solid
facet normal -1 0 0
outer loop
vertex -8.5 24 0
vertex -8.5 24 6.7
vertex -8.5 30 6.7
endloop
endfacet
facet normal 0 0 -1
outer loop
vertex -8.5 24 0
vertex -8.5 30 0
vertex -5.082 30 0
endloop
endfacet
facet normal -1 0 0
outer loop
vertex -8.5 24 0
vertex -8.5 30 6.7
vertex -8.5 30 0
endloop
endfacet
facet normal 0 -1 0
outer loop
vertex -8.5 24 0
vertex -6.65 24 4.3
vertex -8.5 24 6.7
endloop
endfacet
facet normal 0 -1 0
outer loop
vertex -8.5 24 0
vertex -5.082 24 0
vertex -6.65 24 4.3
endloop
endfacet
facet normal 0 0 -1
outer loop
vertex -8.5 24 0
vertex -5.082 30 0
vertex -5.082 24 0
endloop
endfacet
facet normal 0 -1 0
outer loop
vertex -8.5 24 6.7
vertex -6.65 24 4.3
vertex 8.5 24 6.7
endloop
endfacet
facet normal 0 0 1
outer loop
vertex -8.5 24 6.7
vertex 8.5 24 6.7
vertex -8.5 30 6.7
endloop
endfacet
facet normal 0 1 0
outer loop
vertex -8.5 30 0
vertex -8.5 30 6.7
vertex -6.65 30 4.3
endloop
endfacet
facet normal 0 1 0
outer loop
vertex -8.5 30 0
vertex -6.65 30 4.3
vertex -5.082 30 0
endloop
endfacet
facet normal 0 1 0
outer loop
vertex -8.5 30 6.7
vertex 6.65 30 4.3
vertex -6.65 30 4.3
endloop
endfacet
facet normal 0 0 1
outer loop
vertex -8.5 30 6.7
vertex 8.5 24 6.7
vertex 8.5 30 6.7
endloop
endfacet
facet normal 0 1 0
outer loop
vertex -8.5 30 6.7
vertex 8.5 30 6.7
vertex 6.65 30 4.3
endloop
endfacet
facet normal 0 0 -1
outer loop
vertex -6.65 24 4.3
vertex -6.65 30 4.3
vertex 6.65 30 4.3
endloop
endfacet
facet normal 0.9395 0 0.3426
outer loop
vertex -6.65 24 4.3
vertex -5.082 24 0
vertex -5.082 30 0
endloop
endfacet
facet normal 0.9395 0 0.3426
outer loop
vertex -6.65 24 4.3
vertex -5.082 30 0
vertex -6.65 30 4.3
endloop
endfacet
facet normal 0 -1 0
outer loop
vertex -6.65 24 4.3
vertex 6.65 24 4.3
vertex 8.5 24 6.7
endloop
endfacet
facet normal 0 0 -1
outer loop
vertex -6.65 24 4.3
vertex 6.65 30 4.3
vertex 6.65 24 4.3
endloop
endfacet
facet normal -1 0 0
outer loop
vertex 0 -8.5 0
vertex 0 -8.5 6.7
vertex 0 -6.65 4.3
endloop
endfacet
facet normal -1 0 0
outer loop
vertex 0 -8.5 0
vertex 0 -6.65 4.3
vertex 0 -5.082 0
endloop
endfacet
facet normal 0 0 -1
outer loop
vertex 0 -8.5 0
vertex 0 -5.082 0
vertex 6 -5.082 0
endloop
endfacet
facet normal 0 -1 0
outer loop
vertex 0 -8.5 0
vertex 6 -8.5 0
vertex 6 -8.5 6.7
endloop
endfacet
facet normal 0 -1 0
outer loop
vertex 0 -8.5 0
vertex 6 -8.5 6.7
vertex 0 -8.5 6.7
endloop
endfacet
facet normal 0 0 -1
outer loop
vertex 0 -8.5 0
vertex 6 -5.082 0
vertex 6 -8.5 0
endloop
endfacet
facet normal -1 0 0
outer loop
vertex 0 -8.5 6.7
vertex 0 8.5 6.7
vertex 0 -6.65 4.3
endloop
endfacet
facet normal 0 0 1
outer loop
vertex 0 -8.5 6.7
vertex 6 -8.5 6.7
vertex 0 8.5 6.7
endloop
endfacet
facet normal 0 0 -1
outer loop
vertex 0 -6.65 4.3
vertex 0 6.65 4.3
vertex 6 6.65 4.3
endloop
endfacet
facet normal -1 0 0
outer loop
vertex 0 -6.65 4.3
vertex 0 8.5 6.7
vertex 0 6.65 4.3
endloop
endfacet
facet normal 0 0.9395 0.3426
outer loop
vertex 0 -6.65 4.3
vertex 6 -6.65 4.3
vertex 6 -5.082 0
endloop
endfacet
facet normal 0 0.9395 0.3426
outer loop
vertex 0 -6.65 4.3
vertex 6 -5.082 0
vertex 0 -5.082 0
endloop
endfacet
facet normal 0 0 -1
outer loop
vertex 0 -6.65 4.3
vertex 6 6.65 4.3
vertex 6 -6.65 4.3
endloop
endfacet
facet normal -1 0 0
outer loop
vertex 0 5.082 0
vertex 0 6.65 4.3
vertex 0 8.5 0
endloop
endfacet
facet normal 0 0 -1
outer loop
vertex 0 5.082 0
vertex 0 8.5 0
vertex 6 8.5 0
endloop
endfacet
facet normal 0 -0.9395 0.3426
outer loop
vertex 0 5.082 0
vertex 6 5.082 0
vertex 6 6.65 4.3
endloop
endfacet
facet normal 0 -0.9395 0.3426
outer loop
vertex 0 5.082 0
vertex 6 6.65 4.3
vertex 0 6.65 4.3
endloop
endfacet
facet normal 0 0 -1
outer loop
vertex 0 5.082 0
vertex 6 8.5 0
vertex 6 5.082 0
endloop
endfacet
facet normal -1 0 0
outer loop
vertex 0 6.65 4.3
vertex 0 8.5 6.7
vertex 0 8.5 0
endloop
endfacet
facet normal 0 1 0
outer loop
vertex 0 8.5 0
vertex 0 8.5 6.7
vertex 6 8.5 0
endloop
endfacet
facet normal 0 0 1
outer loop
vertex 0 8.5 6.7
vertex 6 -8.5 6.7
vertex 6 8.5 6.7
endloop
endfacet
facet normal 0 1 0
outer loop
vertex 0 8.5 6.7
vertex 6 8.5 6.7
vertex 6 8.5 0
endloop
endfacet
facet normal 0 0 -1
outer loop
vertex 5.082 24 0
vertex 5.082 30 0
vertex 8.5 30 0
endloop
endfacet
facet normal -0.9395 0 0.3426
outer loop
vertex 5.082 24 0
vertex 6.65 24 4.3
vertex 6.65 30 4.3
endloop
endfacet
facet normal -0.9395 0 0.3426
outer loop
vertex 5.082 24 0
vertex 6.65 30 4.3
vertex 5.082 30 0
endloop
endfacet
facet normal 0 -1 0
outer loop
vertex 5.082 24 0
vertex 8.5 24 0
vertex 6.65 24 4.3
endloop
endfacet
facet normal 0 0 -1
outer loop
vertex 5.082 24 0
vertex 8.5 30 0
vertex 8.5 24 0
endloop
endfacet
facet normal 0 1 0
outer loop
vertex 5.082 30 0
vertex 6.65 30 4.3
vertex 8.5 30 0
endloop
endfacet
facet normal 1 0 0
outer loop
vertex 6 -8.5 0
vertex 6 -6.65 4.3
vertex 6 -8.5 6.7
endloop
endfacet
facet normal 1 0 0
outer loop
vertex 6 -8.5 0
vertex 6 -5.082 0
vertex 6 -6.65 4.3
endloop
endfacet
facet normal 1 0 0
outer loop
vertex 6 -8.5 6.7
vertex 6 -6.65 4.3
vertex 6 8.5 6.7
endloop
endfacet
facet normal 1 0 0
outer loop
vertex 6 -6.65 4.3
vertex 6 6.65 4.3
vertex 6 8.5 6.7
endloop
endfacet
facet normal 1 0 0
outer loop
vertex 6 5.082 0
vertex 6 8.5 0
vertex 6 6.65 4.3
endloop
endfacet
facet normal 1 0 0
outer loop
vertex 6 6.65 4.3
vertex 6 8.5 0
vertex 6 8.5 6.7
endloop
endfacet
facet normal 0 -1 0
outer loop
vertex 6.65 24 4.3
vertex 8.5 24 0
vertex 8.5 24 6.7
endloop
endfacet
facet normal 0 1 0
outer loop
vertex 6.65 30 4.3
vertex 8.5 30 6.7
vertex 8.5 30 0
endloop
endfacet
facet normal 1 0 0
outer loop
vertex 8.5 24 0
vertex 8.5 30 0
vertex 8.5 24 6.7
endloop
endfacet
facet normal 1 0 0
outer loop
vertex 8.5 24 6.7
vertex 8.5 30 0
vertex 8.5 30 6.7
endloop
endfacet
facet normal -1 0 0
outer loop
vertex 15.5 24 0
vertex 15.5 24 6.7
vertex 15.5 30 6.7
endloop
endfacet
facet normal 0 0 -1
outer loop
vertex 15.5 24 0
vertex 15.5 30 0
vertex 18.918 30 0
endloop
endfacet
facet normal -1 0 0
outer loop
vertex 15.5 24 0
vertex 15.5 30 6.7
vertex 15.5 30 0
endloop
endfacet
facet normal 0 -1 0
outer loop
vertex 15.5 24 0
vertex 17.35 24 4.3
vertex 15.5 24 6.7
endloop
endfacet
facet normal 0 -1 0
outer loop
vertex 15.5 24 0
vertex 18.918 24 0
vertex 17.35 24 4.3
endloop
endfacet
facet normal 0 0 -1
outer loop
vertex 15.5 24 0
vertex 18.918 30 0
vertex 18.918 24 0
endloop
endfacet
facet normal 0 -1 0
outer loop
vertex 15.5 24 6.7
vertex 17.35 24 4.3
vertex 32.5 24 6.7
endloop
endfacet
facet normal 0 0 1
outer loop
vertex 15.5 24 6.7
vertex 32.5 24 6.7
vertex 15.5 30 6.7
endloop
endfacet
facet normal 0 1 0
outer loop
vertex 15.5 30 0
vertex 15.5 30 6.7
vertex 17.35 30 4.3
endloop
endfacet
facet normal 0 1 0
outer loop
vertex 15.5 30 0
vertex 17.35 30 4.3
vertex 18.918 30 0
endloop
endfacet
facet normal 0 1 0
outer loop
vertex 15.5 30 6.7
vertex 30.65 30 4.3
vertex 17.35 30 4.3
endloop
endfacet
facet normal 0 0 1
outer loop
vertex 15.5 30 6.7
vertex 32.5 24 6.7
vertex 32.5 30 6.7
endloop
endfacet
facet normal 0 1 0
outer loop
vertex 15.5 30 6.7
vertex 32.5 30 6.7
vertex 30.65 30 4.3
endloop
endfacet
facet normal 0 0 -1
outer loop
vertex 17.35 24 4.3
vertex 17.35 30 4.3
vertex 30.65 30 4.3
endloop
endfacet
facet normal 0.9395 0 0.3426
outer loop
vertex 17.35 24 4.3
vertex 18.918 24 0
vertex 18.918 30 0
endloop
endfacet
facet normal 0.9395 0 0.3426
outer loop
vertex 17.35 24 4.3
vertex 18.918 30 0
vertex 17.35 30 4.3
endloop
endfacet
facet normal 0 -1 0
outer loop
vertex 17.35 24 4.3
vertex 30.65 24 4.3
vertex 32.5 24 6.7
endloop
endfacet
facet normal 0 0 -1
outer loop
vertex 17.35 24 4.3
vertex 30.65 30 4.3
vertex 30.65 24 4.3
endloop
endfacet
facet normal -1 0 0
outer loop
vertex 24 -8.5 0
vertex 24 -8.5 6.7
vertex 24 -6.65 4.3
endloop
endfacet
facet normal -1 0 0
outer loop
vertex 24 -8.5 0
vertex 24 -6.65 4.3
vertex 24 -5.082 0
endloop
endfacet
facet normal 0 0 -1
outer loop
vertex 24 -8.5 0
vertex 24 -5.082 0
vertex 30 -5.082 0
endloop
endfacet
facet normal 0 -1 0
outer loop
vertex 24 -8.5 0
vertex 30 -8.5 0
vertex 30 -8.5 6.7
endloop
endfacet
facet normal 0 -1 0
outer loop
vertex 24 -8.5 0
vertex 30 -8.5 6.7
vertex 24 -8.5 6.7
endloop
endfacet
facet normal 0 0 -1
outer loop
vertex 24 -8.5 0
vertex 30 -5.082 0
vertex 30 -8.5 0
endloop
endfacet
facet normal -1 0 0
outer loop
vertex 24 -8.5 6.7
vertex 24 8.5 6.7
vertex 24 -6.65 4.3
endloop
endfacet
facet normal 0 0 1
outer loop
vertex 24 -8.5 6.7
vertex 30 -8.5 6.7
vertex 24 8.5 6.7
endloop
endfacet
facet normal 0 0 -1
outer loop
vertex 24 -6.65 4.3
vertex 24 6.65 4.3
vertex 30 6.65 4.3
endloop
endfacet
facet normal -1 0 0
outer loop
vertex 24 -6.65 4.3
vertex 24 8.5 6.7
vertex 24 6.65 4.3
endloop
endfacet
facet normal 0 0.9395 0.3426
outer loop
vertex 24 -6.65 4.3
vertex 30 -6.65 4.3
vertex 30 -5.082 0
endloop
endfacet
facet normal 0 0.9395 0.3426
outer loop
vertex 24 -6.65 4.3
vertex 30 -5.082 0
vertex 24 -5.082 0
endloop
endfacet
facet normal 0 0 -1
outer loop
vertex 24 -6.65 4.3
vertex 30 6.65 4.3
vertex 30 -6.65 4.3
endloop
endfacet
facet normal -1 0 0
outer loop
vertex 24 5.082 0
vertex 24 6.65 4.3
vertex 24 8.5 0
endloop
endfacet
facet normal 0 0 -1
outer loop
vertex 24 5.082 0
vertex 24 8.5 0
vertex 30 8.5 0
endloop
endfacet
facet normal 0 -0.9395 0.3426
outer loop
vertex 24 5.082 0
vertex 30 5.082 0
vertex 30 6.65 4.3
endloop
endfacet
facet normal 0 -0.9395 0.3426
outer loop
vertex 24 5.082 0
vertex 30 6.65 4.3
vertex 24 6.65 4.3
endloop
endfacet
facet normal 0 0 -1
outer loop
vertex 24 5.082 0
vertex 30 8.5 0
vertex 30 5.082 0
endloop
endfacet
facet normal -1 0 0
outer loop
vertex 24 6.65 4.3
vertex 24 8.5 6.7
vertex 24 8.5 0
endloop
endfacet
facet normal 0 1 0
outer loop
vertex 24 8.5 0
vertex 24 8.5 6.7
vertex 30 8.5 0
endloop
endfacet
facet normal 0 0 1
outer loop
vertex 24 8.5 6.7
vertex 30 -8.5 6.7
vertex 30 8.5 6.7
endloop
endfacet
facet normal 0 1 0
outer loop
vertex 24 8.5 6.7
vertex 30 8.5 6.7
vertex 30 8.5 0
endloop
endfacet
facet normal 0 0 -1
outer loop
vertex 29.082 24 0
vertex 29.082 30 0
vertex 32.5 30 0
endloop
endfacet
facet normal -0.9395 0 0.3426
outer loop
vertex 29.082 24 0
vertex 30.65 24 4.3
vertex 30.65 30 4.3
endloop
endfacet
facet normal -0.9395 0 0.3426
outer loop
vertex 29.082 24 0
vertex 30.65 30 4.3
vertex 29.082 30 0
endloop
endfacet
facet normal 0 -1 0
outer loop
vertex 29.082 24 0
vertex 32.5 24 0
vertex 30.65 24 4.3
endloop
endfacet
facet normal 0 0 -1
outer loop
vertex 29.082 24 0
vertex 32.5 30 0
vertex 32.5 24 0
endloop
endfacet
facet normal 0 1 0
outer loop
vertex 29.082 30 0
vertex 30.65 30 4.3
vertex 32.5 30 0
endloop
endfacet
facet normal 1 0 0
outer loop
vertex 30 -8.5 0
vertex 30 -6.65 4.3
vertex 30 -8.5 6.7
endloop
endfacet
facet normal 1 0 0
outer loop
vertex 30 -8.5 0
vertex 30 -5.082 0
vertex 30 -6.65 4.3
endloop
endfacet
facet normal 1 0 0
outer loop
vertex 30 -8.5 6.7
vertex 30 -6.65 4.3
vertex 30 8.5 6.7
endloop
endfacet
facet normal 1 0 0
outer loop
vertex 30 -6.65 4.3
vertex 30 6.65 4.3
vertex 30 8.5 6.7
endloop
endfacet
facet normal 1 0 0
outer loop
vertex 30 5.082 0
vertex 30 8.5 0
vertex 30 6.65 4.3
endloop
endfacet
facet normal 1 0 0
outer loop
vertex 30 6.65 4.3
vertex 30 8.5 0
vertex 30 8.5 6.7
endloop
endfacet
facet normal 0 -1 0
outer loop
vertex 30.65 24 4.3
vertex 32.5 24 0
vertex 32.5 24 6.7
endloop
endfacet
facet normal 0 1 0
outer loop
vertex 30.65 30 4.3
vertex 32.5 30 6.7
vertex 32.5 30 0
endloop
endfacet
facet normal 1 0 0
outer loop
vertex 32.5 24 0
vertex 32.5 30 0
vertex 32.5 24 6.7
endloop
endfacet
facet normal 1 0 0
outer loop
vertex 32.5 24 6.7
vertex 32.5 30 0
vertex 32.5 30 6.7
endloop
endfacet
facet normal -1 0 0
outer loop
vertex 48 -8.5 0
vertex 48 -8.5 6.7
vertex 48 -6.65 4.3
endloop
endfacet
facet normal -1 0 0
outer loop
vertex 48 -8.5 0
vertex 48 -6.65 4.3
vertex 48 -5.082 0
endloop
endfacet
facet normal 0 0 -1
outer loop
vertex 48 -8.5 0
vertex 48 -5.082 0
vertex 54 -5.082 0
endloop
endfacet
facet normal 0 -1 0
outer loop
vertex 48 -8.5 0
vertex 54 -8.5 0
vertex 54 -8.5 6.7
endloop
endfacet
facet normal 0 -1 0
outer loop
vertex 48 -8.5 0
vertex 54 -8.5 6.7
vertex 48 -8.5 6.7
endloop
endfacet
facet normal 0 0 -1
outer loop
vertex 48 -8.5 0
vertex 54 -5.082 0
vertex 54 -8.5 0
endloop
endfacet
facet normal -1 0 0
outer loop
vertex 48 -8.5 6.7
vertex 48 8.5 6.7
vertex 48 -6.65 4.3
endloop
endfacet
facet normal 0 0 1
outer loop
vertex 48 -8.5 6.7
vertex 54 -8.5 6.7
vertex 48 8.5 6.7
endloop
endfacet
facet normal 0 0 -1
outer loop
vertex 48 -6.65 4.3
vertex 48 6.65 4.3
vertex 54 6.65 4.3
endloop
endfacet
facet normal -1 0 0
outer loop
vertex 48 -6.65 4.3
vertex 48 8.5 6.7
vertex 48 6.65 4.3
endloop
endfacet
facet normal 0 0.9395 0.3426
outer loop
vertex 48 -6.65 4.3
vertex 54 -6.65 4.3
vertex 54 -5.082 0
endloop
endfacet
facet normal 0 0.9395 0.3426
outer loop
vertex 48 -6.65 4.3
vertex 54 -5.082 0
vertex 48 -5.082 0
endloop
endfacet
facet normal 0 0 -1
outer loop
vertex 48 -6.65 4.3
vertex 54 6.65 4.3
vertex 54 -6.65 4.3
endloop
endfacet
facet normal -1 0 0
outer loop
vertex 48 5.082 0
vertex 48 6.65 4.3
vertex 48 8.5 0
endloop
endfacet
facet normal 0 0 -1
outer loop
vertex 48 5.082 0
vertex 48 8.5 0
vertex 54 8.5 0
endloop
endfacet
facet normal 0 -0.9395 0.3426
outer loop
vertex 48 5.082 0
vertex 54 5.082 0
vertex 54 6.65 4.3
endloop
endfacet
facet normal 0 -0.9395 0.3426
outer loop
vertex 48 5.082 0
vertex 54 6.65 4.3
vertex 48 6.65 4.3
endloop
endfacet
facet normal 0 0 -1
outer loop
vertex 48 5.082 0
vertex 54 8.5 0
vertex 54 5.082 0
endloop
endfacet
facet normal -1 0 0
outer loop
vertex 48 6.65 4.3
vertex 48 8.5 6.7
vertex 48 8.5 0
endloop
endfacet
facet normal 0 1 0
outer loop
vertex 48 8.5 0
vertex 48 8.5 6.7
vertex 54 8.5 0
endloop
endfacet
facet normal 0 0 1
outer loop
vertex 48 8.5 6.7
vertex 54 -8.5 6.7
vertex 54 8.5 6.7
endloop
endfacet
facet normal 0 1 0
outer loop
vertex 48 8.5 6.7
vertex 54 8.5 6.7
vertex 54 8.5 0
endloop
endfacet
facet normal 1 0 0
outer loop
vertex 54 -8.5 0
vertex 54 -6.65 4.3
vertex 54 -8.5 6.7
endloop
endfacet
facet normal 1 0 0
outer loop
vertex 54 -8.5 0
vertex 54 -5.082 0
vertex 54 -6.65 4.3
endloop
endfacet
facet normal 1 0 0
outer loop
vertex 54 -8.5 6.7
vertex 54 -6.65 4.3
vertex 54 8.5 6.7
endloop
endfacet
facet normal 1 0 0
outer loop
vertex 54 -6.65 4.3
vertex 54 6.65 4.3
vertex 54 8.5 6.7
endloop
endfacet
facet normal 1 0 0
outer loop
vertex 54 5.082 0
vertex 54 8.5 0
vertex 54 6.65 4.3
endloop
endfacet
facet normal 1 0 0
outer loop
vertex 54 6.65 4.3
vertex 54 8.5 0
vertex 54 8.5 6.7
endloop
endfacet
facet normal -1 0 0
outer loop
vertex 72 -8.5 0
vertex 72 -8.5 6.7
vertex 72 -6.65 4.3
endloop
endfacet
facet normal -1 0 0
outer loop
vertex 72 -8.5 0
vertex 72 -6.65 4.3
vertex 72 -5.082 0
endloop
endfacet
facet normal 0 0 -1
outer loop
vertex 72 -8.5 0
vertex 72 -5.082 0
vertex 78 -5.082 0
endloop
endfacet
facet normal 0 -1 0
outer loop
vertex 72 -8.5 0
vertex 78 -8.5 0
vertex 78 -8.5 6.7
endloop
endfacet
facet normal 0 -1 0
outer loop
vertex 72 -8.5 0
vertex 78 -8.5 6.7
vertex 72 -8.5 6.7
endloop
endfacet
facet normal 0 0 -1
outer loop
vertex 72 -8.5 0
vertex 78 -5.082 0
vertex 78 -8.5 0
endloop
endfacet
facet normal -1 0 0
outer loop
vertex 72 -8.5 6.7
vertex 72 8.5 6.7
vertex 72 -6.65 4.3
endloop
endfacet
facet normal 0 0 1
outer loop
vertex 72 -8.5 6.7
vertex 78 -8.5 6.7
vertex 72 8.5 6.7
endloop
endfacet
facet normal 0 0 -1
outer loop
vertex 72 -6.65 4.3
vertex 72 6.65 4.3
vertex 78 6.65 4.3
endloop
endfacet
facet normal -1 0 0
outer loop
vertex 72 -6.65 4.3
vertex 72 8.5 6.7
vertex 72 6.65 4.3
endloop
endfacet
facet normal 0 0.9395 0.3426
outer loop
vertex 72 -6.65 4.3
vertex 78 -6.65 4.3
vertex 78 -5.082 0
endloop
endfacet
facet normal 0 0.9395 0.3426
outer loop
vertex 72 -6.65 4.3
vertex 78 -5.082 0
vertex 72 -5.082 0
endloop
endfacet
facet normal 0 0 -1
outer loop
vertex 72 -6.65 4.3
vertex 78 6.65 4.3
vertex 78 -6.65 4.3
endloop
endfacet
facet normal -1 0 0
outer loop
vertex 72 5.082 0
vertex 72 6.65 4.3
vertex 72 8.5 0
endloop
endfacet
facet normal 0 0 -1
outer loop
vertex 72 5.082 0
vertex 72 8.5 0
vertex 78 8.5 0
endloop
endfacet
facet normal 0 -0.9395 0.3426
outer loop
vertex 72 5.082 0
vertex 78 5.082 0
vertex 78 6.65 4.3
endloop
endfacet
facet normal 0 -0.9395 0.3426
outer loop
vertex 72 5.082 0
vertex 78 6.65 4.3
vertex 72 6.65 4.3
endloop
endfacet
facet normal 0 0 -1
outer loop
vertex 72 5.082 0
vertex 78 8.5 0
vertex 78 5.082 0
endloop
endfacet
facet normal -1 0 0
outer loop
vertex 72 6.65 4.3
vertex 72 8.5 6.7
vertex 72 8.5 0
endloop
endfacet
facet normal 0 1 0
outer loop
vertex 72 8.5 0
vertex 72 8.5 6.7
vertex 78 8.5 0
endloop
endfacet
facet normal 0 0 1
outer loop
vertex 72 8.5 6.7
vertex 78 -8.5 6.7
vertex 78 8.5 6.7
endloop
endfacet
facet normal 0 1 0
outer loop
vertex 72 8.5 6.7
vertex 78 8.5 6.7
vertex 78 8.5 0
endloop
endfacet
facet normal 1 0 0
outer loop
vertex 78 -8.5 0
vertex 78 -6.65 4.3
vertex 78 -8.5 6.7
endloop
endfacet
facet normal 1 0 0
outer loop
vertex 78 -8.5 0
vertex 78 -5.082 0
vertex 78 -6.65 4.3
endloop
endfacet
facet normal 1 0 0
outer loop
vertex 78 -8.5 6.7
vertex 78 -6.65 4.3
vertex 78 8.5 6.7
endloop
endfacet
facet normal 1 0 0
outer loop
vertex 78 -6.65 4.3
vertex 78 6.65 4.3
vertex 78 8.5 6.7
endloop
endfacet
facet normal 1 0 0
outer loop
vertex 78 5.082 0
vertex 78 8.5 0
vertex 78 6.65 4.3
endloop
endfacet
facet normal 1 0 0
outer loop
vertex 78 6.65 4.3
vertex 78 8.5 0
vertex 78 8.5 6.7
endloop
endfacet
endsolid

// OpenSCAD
/*
  Batentes removiveis de pressao. Imprimir em PETG.
  Quatro unidades X (duas por trilho) e duas unidades Y. Nao usam parafuso.

  Como sao batentes de pressao, usam pressfit_clearance = 0.15 mm, separado da
  folga de deslizamento XY (slide_clearance_xy = 0.22 mm) validada no Teste 99.
*/

include <00_Parametros.scad>;

module batente_x() {
  difference() {
    translate([0,-(dovetail_width_top+4)/2,0])
      cube([6,dovetail_width_top+4,dovetail_height+2.2]);
    translate([0,0,-0.35])
      dovetail_female_x(6,clearance=pressfit_clearance);
    // Rasgo inferior permite pequena flexao ao pressionar no fim do trilho.
    translate([-EPS,-0.6,-EPS]) cube([6+2*EPS,1.2,2.2]);
  }
}

module batente_y() {
  difference() {
    translate([-(dovetail_width_top+4)/2,0,0])
      cube([dovetail_width_top+4,6,dovetail_height+2.2]);
    translate([0,0,-0.35])
      dovetail_female_y(6,clearance=pressfit_clearance);
    translate([-0.6,-EPS,-EPS]) cube([1.2,6+2*EPS,2.2]);
  }
}

for (i=[0:3]) translate([i*24,0,0]) batente_x();
for (i=[0:1]) translate([i*24,24,0]) batente_y();
